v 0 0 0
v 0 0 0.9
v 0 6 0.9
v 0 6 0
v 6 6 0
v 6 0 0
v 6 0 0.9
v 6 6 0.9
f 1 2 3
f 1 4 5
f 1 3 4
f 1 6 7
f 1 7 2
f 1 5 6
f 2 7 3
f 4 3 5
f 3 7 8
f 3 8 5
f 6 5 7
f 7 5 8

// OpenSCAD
/* Warning, this is a very basic generator with a lot of approximation 
input data : [VQFN, SBB, 6x6x0.9mm, 48, , A, C04-21405A]
generated by com.zoubworld.electronics.cad.model3d.Basic
Date : Sun Feb 15 10:50:49 CET 2026
*/

//body
color("black")
translate([0,0,0])
cube([6.0,6.0,0.9], center=false);
